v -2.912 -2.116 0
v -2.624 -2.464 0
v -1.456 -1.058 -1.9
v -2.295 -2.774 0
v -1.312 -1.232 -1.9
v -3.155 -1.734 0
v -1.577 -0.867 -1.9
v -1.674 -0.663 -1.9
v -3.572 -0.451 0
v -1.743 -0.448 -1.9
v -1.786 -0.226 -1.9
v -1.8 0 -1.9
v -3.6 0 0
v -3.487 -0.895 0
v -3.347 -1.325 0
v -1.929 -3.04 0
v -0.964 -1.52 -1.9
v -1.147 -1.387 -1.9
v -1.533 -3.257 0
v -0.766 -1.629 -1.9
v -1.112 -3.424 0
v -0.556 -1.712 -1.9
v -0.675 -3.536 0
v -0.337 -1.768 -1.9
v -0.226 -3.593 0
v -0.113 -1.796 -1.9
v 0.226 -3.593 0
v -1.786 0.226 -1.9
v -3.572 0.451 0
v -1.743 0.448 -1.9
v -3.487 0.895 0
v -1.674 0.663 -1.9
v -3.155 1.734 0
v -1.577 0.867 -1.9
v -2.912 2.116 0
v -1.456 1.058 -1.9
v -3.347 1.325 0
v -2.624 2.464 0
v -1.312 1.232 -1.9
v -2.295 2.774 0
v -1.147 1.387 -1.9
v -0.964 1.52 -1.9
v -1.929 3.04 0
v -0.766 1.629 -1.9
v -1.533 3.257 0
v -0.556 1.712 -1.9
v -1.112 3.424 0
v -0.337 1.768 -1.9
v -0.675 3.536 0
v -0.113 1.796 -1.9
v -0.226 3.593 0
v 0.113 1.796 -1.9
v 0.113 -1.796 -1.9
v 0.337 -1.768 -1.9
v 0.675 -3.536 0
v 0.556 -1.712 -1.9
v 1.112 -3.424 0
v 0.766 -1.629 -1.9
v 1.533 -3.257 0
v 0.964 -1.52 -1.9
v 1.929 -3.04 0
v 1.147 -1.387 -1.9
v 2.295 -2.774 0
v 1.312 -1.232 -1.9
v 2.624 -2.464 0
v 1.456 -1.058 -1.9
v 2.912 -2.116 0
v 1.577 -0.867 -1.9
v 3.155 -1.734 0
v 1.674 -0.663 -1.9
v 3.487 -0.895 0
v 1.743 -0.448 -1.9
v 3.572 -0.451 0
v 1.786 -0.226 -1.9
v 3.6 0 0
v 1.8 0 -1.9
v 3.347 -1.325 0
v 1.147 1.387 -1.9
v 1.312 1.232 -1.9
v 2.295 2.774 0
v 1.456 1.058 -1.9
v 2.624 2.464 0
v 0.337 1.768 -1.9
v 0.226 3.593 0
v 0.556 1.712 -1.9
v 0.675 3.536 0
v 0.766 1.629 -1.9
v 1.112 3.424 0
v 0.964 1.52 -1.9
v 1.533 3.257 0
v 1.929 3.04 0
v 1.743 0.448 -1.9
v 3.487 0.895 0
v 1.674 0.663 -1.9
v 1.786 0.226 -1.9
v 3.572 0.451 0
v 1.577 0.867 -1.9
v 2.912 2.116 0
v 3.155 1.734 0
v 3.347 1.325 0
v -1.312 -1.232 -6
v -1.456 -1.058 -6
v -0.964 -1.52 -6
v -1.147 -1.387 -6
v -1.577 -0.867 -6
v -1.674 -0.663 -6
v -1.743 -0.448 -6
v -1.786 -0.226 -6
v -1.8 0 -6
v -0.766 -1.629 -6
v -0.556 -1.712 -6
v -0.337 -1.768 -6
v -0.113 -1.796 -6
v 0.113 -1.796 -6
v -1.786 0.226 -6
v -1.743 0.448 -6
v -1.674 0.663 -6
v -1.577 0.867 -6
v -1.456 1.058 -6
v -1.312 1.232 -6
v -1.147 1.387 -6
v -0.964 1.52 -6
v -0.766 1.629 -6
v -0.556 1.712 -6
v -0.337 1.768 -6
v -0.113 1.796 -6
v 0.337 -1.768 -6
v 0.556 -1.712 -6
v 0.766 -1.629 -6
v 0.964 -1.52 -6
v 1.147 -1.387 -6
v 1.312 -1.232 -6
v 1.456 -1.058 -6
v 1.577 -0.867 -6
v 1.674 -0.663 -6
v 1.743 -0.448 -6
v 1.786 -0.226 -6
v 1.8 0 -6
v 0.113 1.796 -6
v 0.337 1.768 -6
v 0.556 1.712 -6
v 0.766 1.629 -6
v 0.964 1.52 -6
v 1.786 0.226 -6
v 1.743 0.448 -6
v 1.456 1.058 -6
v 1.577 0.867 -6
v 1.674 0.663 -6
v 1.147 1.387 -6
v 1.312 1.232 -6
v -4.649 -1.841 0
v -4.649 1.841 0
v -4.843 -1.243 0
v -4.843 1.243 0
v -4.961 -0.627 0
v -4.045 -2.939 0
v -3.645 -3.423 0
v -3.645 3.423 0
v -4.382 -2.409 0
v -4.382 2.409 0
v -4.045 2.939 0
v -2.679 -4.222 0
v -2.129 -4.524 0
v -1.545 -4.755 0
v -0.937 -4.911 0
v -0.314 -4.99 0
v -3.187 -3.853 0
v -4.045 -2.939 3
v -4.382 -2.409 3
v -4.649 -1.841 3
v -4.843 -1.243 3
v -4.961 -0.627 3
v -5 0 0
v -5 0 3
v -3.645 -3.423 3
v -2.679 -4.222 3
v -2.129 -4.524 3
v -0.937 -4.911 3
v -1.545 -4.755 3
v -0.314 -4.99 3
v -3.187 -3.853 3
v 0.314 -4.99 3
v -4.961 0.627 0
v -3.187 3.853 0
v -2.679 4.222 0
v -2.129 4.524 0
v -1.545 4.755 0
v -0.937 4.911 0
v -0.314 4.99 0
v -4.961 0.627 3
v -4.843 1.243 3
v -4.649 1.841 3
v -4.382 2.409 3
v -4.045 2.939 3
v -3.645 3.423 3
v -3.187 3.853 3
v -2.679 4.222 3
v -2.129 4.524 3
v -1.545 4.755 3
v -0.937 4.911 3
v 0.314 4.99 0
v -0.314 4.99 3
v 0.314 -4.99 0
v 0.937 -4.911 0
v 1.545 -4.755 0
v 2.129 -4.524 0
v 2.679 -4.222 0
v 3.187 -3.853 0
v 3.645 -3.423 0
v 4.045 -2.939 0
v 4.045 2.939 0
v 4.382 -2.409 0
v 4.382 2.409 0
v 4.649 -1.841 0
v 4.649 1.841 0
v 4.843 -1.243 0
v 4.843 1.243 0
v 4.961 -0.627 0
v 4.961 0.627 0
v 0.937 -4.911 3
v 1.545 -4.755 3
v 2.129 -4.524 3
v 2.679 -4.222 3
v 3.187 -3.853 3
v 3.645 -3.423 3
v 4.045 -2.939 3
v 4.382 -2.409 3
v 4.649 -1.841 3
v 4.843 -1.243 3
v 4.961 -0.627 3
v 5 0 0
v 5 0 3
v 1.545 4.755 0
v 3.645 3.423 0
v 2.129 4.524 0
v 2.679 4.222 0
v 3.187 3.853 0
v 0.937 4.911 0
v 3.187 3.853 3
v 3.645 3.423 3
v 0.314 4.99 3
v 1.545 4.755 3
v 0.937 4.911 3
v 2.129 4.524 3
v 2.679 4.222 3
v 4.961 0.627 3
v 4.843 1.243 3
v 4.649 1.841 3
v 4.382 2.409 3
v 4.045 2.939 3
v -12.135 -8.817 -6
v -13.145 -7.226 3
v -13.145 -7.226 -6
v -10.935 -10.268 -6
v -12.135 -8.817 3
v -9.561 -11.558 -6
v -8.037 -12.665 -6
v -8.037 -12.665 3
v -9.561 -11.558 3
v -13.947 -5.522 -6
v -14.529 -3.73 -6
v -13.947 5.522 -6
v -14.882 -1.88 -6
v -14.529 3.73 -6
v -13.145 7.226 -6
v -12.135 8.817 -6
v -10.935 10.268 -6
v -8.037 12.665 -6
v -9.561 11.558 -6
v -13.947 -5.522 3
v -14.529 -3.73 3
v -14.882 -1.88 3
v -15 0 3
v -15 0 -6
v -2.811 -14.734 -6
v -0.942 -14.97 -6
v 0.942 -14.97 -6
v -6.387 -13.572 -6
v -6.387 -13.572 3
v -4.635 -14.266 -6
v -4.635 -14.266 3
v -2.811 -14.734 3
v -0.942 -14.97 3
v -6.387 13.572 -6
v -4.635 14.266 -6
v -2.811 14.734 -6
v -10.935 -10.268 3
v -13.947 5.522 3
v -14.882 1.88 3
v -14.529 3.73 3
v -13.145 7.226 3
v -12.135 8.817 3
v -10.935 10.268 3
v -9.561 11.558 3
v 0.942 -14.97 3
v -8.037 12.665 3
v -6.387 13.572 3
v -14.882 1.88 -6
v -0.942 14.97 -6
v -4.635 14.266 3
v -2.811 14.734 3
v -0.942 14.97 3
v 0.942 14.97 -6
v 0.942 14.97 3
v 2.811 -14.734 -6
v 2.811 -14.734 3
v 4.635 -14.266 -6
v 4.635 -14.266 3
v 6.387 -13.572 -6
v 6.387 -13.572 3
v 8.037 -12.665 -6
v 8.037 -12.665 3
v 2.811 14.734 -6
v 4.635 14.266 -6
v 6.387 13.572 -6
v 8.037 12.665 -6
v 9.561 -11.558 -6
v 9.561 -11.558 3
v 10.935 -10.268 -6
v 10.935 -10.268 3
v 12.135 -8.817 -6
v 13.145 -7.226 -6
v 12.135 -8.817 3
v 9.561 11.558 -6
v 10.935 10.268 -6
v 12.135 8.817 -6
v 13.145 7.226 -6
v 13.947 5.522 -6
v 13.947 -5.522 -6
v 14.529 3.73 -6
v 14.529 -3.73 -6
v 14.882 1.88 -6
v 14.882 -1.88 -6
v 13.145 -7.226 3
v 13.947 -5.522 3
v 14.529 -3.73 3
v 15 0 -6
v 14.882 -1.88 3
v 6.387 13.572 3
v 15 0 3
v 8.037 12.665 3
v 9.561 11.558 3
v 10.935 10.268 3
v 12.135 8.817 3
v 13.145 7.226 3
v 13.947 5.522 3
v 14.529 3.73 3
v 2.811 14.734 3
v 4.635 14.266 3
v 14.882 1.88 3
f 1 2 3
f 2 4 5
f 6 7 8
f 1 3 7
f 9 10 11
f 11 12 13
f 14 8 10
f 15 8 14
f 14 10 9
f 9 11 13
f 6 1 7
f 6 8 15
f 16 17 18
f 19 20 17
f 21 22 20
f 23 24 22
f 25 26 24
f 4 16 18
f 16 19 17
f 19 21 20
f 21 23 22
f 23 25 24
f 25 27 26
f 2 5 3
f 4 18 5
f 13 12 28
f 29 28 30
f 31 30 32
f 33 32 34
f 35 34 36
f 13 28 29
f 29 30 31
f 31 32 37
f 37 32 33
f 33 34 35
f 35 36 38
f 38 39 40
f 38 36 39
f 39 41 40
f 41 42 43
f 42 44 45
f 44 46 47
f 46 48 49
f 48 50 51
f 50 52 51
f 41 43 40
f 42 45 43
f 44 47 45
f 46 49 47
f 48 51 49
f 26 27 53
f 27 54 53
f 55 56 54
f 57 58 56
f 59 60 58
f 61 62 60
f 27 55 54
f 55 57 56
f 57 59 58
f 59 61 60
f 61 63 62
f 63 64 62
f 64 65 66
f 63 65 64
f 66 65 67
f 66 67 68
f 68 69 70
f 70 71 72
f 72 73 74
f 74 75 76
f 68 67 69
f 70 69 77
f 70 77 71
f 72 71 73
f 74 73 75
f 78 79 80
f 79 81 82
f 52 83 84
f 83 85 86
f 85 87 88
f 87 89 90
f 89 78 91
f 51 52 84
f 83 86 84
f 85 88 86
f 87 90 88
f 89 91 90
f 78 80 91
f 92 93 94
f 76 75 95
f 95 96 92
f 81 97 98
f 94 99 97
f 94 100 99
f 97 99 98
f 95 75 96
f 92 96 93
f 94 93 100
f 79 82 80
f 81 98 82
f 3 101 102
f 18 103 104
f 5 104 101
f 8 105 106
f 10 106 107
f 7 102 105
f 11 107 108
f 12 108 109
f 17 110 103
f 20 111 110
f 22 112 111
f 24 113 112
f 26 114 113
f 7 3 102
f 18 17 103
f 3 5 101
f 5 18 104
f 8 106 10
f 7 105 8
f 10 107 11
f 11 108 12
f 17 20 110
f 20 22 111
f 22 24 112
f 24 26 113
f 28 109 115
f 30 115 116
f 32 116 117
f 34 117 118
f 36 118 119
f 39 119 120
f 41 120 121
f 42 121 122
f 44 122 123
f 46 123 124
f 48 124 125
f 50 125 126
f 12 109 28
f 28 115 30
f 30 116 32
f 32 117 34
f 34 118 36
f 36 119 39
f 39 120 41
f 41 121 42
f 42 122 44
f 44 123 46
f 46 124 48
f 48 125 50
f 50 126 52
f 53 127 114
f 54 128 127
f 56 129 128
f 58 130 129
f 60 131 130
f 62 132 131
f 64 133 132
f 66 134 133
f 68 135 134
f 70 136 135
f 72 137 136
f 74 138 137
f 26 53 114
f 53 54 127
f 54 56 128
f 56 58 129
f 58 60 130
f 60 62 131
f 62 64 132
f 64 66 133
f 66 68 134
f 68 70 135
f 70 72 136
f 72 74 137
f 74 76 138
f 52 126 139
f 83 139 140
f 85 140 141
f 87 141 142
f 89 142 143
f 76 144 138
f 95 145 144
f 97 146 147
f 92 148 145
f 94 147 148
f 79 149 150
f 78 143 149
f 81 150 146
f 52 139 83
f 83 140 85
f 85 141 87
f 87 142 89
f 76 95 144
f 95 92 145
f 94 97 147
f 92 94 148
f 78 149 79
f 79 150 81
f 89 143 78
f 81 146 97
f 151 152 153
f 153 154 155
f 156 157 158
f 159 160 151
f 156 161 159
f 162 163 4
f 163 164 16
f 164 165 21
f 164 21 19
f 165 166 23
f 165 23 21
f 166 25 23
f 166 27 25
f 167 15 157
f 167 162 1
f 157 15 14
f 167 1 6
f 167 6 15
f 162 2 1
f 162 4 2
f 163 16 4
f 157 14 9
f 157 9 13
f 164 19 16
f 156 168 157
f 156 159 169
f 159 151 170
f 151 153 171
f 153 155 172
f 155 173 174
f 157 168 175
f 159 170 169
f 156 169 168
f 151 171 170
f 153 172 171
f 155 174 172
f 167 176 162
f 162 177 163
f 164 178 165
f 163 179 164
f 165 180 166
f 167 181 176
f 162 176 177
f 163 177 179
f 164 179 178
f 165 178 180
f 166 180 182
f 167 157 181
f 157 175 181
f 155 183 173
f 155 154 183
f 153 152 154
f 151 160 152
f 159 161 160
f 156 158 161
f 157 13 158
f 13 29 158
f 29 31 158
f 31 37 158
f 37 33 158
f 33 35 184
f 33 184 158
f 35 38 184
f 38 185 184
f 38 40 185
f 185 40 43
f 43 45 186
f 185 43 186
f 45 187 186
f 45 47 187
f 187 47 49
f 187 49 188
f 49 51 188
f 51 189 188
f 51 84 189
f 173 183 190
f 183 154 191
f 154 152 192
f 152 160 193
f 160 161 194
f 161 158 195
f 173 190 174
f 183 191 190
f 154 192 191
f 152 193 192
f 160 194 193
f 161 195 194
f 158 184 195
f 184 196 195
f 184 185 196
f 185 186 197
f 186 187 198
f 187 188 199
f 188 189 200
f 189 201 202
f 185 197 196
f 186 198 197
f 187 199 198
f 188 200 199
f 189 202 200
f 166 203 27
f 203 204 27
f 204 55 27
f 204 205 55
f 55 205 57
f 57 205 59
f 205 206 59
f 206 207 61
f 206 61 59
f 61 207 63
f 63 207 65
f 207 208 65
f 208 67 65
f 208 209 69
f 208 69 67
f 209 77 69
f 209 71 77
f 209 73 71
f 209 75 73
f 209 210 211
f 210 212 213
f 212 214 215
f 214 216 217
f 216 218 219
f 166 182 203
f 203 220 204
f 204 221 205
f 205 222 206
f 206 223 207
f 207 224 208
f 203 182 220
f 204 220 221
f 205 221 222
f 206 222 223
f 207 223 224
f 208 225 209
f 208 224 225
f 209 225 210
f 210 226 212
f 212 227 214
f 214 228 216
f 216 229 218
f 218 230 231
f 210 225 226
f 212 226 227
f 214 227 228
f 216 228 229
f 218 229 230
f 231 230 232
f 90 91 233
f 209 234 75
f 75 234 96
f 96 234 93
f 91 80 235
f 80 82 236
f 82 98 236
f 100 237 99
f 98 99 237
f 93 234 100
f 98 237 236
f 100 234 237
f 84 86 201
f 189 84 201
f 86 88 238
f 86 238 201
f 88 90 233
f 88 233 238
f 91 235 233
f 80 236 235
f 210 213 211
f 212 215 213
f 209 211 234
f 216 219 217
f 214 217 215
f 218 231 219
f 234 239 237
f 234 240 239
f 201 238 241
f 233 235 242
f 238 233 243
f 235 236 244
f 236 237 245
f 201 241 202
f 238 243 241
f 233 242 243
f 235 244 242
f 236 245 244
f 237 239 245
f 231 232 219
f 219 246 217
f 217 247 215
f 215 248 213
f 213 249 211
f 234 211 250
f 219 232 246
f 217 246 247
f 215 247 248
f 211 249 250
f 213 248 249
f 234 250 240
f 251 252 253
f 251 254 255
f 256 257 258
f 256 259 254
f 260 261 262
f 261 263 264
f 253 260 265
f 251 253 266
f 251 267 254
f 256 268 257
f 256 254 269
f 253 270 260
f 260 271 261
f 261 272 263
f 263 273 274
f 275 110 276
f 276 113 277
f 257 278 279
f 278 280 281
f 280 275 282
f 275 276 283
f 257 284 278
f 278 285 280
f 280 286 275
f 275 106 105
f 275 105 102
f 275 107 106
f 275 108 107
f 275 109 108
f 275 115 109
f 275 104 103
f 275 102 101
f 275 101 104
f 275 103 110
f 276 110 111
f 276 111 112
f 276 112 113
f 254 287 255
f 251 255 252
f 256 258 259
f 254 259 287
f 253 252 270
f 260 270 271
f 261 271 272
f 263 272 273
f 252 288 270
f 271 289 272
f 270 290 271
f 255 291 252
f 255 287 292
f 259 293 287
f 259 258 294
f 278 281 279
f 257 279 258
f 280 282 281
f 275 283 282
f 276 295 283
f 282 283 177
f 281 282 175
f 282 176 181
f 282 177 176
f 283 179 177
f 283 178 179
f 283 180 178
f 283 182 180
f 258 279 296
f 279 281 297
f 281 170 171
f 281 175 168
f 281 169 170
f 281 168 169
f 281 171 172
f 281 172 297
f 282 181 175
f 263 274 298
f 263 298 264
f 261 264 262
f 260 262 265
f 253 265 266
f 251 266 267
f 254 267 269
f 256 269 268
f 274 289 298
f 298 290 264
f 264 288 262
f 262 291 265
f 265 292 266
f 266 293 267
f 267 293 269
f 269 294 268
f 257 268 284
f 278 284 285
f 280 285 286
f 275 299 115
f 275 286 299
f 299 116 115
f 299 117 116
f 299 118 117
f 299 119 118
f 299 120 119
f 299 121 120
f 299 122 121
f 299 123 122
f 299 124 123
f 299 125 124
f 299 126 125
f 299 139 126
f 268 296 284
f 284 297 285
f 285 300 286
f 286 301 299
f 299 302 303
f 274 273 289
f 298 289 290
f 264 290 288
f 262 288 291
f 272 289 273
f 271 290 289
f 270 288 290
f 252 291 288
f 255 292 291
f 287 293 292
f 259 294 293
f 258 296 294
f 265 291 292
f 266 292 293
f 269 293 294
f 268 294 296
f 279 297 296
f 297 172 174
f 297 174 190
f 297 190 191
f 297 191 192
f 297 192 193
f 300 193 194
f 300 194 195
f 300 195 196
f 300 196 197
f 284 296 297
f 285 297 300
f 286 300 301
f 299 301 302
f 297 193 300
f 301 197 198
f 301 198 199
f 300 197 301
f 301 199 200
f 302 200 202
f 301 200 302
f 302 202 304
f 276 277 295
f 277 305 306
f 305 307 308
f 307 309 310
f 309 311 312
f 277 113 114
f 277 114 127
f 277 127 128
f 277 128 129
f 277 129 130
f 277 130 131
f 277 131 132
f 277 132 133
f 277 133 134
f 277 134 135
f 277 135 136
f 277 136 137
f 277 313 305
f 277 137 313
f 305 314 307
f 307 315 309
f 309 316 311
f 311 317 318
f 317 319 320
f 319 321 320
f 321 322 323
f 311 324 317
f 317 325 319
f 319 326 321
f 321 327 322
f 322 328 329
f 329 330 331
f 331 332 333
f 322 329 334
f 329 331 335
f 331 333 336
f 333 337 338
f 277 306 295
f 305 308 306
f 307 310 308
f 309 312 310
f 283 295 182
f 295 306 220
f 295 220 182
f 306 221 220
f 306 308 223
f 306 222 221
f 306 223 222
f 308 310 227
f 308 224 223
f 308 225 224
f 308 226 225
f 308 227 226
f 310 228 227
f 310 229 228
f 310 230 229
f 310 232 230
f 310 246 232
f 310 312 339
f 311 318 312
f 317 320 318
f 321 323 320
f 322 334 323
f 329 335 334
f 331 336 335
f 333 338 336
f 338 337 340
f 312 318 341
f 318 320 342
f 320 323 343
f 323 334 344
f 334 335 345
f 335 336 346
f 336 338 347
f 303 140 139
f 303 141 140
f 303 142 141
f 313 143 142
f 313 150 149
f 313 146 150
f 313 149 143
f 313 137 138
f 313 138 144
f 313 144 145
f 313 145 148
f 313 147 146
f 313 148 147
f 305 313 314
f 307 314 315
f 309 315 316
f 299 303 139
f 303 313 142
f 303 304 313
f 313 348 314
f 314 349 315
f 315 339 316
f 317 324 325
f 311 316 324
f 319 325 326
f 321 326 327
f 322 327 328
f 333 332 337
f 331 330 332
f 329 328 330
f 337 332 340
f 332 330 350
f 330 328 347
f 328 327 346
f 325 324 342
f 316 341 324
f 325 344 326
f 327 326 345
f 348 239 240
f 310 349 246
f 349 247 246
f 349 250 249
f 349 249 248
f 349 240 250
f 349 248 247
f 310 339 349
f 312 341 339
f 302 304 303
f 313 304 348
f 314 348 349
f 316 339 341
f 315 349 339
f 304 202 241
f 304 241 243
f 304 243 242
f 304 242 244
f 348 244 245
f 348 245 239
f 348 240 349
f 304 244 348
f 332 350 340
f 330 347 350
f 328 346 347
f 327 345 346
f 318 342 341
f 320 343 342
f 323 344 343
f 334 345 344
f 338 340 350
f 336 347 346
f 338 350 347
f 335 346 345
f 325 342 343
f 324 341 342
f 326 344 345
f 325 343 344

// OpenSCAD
$fn = 50;

difference() {
	union() {
		translate(v = [0, 0, -6.0]) {
			cylinder(h = 9, r = 15.0);
		}
	}
	union() {
		translate(v = [0, 0, 0]) {
			rotate(a = [0, 0, 0]) {
				difference() {
					union() {
						translate(v = [0, 0, -9.0]) {
							cylinder(h = 9, r = 1.5);
						}
						translate(v = [0, 0, -1.9]) {
							cylinder(h = 1.9, r1 = 1.8, r2 = 3.6);
						}
						translate(v = [0, 0, -9.0]) {
							cylinder(h = 9, r = 1.8);
						}
						translate(v = [0, 0, -9.0]) {
							cylinder(h = 9, r = 1.5);
						}
					}
					union();
				}
			}
		}
		#cylinder(h = 3, r = 5.0);
	}
}
